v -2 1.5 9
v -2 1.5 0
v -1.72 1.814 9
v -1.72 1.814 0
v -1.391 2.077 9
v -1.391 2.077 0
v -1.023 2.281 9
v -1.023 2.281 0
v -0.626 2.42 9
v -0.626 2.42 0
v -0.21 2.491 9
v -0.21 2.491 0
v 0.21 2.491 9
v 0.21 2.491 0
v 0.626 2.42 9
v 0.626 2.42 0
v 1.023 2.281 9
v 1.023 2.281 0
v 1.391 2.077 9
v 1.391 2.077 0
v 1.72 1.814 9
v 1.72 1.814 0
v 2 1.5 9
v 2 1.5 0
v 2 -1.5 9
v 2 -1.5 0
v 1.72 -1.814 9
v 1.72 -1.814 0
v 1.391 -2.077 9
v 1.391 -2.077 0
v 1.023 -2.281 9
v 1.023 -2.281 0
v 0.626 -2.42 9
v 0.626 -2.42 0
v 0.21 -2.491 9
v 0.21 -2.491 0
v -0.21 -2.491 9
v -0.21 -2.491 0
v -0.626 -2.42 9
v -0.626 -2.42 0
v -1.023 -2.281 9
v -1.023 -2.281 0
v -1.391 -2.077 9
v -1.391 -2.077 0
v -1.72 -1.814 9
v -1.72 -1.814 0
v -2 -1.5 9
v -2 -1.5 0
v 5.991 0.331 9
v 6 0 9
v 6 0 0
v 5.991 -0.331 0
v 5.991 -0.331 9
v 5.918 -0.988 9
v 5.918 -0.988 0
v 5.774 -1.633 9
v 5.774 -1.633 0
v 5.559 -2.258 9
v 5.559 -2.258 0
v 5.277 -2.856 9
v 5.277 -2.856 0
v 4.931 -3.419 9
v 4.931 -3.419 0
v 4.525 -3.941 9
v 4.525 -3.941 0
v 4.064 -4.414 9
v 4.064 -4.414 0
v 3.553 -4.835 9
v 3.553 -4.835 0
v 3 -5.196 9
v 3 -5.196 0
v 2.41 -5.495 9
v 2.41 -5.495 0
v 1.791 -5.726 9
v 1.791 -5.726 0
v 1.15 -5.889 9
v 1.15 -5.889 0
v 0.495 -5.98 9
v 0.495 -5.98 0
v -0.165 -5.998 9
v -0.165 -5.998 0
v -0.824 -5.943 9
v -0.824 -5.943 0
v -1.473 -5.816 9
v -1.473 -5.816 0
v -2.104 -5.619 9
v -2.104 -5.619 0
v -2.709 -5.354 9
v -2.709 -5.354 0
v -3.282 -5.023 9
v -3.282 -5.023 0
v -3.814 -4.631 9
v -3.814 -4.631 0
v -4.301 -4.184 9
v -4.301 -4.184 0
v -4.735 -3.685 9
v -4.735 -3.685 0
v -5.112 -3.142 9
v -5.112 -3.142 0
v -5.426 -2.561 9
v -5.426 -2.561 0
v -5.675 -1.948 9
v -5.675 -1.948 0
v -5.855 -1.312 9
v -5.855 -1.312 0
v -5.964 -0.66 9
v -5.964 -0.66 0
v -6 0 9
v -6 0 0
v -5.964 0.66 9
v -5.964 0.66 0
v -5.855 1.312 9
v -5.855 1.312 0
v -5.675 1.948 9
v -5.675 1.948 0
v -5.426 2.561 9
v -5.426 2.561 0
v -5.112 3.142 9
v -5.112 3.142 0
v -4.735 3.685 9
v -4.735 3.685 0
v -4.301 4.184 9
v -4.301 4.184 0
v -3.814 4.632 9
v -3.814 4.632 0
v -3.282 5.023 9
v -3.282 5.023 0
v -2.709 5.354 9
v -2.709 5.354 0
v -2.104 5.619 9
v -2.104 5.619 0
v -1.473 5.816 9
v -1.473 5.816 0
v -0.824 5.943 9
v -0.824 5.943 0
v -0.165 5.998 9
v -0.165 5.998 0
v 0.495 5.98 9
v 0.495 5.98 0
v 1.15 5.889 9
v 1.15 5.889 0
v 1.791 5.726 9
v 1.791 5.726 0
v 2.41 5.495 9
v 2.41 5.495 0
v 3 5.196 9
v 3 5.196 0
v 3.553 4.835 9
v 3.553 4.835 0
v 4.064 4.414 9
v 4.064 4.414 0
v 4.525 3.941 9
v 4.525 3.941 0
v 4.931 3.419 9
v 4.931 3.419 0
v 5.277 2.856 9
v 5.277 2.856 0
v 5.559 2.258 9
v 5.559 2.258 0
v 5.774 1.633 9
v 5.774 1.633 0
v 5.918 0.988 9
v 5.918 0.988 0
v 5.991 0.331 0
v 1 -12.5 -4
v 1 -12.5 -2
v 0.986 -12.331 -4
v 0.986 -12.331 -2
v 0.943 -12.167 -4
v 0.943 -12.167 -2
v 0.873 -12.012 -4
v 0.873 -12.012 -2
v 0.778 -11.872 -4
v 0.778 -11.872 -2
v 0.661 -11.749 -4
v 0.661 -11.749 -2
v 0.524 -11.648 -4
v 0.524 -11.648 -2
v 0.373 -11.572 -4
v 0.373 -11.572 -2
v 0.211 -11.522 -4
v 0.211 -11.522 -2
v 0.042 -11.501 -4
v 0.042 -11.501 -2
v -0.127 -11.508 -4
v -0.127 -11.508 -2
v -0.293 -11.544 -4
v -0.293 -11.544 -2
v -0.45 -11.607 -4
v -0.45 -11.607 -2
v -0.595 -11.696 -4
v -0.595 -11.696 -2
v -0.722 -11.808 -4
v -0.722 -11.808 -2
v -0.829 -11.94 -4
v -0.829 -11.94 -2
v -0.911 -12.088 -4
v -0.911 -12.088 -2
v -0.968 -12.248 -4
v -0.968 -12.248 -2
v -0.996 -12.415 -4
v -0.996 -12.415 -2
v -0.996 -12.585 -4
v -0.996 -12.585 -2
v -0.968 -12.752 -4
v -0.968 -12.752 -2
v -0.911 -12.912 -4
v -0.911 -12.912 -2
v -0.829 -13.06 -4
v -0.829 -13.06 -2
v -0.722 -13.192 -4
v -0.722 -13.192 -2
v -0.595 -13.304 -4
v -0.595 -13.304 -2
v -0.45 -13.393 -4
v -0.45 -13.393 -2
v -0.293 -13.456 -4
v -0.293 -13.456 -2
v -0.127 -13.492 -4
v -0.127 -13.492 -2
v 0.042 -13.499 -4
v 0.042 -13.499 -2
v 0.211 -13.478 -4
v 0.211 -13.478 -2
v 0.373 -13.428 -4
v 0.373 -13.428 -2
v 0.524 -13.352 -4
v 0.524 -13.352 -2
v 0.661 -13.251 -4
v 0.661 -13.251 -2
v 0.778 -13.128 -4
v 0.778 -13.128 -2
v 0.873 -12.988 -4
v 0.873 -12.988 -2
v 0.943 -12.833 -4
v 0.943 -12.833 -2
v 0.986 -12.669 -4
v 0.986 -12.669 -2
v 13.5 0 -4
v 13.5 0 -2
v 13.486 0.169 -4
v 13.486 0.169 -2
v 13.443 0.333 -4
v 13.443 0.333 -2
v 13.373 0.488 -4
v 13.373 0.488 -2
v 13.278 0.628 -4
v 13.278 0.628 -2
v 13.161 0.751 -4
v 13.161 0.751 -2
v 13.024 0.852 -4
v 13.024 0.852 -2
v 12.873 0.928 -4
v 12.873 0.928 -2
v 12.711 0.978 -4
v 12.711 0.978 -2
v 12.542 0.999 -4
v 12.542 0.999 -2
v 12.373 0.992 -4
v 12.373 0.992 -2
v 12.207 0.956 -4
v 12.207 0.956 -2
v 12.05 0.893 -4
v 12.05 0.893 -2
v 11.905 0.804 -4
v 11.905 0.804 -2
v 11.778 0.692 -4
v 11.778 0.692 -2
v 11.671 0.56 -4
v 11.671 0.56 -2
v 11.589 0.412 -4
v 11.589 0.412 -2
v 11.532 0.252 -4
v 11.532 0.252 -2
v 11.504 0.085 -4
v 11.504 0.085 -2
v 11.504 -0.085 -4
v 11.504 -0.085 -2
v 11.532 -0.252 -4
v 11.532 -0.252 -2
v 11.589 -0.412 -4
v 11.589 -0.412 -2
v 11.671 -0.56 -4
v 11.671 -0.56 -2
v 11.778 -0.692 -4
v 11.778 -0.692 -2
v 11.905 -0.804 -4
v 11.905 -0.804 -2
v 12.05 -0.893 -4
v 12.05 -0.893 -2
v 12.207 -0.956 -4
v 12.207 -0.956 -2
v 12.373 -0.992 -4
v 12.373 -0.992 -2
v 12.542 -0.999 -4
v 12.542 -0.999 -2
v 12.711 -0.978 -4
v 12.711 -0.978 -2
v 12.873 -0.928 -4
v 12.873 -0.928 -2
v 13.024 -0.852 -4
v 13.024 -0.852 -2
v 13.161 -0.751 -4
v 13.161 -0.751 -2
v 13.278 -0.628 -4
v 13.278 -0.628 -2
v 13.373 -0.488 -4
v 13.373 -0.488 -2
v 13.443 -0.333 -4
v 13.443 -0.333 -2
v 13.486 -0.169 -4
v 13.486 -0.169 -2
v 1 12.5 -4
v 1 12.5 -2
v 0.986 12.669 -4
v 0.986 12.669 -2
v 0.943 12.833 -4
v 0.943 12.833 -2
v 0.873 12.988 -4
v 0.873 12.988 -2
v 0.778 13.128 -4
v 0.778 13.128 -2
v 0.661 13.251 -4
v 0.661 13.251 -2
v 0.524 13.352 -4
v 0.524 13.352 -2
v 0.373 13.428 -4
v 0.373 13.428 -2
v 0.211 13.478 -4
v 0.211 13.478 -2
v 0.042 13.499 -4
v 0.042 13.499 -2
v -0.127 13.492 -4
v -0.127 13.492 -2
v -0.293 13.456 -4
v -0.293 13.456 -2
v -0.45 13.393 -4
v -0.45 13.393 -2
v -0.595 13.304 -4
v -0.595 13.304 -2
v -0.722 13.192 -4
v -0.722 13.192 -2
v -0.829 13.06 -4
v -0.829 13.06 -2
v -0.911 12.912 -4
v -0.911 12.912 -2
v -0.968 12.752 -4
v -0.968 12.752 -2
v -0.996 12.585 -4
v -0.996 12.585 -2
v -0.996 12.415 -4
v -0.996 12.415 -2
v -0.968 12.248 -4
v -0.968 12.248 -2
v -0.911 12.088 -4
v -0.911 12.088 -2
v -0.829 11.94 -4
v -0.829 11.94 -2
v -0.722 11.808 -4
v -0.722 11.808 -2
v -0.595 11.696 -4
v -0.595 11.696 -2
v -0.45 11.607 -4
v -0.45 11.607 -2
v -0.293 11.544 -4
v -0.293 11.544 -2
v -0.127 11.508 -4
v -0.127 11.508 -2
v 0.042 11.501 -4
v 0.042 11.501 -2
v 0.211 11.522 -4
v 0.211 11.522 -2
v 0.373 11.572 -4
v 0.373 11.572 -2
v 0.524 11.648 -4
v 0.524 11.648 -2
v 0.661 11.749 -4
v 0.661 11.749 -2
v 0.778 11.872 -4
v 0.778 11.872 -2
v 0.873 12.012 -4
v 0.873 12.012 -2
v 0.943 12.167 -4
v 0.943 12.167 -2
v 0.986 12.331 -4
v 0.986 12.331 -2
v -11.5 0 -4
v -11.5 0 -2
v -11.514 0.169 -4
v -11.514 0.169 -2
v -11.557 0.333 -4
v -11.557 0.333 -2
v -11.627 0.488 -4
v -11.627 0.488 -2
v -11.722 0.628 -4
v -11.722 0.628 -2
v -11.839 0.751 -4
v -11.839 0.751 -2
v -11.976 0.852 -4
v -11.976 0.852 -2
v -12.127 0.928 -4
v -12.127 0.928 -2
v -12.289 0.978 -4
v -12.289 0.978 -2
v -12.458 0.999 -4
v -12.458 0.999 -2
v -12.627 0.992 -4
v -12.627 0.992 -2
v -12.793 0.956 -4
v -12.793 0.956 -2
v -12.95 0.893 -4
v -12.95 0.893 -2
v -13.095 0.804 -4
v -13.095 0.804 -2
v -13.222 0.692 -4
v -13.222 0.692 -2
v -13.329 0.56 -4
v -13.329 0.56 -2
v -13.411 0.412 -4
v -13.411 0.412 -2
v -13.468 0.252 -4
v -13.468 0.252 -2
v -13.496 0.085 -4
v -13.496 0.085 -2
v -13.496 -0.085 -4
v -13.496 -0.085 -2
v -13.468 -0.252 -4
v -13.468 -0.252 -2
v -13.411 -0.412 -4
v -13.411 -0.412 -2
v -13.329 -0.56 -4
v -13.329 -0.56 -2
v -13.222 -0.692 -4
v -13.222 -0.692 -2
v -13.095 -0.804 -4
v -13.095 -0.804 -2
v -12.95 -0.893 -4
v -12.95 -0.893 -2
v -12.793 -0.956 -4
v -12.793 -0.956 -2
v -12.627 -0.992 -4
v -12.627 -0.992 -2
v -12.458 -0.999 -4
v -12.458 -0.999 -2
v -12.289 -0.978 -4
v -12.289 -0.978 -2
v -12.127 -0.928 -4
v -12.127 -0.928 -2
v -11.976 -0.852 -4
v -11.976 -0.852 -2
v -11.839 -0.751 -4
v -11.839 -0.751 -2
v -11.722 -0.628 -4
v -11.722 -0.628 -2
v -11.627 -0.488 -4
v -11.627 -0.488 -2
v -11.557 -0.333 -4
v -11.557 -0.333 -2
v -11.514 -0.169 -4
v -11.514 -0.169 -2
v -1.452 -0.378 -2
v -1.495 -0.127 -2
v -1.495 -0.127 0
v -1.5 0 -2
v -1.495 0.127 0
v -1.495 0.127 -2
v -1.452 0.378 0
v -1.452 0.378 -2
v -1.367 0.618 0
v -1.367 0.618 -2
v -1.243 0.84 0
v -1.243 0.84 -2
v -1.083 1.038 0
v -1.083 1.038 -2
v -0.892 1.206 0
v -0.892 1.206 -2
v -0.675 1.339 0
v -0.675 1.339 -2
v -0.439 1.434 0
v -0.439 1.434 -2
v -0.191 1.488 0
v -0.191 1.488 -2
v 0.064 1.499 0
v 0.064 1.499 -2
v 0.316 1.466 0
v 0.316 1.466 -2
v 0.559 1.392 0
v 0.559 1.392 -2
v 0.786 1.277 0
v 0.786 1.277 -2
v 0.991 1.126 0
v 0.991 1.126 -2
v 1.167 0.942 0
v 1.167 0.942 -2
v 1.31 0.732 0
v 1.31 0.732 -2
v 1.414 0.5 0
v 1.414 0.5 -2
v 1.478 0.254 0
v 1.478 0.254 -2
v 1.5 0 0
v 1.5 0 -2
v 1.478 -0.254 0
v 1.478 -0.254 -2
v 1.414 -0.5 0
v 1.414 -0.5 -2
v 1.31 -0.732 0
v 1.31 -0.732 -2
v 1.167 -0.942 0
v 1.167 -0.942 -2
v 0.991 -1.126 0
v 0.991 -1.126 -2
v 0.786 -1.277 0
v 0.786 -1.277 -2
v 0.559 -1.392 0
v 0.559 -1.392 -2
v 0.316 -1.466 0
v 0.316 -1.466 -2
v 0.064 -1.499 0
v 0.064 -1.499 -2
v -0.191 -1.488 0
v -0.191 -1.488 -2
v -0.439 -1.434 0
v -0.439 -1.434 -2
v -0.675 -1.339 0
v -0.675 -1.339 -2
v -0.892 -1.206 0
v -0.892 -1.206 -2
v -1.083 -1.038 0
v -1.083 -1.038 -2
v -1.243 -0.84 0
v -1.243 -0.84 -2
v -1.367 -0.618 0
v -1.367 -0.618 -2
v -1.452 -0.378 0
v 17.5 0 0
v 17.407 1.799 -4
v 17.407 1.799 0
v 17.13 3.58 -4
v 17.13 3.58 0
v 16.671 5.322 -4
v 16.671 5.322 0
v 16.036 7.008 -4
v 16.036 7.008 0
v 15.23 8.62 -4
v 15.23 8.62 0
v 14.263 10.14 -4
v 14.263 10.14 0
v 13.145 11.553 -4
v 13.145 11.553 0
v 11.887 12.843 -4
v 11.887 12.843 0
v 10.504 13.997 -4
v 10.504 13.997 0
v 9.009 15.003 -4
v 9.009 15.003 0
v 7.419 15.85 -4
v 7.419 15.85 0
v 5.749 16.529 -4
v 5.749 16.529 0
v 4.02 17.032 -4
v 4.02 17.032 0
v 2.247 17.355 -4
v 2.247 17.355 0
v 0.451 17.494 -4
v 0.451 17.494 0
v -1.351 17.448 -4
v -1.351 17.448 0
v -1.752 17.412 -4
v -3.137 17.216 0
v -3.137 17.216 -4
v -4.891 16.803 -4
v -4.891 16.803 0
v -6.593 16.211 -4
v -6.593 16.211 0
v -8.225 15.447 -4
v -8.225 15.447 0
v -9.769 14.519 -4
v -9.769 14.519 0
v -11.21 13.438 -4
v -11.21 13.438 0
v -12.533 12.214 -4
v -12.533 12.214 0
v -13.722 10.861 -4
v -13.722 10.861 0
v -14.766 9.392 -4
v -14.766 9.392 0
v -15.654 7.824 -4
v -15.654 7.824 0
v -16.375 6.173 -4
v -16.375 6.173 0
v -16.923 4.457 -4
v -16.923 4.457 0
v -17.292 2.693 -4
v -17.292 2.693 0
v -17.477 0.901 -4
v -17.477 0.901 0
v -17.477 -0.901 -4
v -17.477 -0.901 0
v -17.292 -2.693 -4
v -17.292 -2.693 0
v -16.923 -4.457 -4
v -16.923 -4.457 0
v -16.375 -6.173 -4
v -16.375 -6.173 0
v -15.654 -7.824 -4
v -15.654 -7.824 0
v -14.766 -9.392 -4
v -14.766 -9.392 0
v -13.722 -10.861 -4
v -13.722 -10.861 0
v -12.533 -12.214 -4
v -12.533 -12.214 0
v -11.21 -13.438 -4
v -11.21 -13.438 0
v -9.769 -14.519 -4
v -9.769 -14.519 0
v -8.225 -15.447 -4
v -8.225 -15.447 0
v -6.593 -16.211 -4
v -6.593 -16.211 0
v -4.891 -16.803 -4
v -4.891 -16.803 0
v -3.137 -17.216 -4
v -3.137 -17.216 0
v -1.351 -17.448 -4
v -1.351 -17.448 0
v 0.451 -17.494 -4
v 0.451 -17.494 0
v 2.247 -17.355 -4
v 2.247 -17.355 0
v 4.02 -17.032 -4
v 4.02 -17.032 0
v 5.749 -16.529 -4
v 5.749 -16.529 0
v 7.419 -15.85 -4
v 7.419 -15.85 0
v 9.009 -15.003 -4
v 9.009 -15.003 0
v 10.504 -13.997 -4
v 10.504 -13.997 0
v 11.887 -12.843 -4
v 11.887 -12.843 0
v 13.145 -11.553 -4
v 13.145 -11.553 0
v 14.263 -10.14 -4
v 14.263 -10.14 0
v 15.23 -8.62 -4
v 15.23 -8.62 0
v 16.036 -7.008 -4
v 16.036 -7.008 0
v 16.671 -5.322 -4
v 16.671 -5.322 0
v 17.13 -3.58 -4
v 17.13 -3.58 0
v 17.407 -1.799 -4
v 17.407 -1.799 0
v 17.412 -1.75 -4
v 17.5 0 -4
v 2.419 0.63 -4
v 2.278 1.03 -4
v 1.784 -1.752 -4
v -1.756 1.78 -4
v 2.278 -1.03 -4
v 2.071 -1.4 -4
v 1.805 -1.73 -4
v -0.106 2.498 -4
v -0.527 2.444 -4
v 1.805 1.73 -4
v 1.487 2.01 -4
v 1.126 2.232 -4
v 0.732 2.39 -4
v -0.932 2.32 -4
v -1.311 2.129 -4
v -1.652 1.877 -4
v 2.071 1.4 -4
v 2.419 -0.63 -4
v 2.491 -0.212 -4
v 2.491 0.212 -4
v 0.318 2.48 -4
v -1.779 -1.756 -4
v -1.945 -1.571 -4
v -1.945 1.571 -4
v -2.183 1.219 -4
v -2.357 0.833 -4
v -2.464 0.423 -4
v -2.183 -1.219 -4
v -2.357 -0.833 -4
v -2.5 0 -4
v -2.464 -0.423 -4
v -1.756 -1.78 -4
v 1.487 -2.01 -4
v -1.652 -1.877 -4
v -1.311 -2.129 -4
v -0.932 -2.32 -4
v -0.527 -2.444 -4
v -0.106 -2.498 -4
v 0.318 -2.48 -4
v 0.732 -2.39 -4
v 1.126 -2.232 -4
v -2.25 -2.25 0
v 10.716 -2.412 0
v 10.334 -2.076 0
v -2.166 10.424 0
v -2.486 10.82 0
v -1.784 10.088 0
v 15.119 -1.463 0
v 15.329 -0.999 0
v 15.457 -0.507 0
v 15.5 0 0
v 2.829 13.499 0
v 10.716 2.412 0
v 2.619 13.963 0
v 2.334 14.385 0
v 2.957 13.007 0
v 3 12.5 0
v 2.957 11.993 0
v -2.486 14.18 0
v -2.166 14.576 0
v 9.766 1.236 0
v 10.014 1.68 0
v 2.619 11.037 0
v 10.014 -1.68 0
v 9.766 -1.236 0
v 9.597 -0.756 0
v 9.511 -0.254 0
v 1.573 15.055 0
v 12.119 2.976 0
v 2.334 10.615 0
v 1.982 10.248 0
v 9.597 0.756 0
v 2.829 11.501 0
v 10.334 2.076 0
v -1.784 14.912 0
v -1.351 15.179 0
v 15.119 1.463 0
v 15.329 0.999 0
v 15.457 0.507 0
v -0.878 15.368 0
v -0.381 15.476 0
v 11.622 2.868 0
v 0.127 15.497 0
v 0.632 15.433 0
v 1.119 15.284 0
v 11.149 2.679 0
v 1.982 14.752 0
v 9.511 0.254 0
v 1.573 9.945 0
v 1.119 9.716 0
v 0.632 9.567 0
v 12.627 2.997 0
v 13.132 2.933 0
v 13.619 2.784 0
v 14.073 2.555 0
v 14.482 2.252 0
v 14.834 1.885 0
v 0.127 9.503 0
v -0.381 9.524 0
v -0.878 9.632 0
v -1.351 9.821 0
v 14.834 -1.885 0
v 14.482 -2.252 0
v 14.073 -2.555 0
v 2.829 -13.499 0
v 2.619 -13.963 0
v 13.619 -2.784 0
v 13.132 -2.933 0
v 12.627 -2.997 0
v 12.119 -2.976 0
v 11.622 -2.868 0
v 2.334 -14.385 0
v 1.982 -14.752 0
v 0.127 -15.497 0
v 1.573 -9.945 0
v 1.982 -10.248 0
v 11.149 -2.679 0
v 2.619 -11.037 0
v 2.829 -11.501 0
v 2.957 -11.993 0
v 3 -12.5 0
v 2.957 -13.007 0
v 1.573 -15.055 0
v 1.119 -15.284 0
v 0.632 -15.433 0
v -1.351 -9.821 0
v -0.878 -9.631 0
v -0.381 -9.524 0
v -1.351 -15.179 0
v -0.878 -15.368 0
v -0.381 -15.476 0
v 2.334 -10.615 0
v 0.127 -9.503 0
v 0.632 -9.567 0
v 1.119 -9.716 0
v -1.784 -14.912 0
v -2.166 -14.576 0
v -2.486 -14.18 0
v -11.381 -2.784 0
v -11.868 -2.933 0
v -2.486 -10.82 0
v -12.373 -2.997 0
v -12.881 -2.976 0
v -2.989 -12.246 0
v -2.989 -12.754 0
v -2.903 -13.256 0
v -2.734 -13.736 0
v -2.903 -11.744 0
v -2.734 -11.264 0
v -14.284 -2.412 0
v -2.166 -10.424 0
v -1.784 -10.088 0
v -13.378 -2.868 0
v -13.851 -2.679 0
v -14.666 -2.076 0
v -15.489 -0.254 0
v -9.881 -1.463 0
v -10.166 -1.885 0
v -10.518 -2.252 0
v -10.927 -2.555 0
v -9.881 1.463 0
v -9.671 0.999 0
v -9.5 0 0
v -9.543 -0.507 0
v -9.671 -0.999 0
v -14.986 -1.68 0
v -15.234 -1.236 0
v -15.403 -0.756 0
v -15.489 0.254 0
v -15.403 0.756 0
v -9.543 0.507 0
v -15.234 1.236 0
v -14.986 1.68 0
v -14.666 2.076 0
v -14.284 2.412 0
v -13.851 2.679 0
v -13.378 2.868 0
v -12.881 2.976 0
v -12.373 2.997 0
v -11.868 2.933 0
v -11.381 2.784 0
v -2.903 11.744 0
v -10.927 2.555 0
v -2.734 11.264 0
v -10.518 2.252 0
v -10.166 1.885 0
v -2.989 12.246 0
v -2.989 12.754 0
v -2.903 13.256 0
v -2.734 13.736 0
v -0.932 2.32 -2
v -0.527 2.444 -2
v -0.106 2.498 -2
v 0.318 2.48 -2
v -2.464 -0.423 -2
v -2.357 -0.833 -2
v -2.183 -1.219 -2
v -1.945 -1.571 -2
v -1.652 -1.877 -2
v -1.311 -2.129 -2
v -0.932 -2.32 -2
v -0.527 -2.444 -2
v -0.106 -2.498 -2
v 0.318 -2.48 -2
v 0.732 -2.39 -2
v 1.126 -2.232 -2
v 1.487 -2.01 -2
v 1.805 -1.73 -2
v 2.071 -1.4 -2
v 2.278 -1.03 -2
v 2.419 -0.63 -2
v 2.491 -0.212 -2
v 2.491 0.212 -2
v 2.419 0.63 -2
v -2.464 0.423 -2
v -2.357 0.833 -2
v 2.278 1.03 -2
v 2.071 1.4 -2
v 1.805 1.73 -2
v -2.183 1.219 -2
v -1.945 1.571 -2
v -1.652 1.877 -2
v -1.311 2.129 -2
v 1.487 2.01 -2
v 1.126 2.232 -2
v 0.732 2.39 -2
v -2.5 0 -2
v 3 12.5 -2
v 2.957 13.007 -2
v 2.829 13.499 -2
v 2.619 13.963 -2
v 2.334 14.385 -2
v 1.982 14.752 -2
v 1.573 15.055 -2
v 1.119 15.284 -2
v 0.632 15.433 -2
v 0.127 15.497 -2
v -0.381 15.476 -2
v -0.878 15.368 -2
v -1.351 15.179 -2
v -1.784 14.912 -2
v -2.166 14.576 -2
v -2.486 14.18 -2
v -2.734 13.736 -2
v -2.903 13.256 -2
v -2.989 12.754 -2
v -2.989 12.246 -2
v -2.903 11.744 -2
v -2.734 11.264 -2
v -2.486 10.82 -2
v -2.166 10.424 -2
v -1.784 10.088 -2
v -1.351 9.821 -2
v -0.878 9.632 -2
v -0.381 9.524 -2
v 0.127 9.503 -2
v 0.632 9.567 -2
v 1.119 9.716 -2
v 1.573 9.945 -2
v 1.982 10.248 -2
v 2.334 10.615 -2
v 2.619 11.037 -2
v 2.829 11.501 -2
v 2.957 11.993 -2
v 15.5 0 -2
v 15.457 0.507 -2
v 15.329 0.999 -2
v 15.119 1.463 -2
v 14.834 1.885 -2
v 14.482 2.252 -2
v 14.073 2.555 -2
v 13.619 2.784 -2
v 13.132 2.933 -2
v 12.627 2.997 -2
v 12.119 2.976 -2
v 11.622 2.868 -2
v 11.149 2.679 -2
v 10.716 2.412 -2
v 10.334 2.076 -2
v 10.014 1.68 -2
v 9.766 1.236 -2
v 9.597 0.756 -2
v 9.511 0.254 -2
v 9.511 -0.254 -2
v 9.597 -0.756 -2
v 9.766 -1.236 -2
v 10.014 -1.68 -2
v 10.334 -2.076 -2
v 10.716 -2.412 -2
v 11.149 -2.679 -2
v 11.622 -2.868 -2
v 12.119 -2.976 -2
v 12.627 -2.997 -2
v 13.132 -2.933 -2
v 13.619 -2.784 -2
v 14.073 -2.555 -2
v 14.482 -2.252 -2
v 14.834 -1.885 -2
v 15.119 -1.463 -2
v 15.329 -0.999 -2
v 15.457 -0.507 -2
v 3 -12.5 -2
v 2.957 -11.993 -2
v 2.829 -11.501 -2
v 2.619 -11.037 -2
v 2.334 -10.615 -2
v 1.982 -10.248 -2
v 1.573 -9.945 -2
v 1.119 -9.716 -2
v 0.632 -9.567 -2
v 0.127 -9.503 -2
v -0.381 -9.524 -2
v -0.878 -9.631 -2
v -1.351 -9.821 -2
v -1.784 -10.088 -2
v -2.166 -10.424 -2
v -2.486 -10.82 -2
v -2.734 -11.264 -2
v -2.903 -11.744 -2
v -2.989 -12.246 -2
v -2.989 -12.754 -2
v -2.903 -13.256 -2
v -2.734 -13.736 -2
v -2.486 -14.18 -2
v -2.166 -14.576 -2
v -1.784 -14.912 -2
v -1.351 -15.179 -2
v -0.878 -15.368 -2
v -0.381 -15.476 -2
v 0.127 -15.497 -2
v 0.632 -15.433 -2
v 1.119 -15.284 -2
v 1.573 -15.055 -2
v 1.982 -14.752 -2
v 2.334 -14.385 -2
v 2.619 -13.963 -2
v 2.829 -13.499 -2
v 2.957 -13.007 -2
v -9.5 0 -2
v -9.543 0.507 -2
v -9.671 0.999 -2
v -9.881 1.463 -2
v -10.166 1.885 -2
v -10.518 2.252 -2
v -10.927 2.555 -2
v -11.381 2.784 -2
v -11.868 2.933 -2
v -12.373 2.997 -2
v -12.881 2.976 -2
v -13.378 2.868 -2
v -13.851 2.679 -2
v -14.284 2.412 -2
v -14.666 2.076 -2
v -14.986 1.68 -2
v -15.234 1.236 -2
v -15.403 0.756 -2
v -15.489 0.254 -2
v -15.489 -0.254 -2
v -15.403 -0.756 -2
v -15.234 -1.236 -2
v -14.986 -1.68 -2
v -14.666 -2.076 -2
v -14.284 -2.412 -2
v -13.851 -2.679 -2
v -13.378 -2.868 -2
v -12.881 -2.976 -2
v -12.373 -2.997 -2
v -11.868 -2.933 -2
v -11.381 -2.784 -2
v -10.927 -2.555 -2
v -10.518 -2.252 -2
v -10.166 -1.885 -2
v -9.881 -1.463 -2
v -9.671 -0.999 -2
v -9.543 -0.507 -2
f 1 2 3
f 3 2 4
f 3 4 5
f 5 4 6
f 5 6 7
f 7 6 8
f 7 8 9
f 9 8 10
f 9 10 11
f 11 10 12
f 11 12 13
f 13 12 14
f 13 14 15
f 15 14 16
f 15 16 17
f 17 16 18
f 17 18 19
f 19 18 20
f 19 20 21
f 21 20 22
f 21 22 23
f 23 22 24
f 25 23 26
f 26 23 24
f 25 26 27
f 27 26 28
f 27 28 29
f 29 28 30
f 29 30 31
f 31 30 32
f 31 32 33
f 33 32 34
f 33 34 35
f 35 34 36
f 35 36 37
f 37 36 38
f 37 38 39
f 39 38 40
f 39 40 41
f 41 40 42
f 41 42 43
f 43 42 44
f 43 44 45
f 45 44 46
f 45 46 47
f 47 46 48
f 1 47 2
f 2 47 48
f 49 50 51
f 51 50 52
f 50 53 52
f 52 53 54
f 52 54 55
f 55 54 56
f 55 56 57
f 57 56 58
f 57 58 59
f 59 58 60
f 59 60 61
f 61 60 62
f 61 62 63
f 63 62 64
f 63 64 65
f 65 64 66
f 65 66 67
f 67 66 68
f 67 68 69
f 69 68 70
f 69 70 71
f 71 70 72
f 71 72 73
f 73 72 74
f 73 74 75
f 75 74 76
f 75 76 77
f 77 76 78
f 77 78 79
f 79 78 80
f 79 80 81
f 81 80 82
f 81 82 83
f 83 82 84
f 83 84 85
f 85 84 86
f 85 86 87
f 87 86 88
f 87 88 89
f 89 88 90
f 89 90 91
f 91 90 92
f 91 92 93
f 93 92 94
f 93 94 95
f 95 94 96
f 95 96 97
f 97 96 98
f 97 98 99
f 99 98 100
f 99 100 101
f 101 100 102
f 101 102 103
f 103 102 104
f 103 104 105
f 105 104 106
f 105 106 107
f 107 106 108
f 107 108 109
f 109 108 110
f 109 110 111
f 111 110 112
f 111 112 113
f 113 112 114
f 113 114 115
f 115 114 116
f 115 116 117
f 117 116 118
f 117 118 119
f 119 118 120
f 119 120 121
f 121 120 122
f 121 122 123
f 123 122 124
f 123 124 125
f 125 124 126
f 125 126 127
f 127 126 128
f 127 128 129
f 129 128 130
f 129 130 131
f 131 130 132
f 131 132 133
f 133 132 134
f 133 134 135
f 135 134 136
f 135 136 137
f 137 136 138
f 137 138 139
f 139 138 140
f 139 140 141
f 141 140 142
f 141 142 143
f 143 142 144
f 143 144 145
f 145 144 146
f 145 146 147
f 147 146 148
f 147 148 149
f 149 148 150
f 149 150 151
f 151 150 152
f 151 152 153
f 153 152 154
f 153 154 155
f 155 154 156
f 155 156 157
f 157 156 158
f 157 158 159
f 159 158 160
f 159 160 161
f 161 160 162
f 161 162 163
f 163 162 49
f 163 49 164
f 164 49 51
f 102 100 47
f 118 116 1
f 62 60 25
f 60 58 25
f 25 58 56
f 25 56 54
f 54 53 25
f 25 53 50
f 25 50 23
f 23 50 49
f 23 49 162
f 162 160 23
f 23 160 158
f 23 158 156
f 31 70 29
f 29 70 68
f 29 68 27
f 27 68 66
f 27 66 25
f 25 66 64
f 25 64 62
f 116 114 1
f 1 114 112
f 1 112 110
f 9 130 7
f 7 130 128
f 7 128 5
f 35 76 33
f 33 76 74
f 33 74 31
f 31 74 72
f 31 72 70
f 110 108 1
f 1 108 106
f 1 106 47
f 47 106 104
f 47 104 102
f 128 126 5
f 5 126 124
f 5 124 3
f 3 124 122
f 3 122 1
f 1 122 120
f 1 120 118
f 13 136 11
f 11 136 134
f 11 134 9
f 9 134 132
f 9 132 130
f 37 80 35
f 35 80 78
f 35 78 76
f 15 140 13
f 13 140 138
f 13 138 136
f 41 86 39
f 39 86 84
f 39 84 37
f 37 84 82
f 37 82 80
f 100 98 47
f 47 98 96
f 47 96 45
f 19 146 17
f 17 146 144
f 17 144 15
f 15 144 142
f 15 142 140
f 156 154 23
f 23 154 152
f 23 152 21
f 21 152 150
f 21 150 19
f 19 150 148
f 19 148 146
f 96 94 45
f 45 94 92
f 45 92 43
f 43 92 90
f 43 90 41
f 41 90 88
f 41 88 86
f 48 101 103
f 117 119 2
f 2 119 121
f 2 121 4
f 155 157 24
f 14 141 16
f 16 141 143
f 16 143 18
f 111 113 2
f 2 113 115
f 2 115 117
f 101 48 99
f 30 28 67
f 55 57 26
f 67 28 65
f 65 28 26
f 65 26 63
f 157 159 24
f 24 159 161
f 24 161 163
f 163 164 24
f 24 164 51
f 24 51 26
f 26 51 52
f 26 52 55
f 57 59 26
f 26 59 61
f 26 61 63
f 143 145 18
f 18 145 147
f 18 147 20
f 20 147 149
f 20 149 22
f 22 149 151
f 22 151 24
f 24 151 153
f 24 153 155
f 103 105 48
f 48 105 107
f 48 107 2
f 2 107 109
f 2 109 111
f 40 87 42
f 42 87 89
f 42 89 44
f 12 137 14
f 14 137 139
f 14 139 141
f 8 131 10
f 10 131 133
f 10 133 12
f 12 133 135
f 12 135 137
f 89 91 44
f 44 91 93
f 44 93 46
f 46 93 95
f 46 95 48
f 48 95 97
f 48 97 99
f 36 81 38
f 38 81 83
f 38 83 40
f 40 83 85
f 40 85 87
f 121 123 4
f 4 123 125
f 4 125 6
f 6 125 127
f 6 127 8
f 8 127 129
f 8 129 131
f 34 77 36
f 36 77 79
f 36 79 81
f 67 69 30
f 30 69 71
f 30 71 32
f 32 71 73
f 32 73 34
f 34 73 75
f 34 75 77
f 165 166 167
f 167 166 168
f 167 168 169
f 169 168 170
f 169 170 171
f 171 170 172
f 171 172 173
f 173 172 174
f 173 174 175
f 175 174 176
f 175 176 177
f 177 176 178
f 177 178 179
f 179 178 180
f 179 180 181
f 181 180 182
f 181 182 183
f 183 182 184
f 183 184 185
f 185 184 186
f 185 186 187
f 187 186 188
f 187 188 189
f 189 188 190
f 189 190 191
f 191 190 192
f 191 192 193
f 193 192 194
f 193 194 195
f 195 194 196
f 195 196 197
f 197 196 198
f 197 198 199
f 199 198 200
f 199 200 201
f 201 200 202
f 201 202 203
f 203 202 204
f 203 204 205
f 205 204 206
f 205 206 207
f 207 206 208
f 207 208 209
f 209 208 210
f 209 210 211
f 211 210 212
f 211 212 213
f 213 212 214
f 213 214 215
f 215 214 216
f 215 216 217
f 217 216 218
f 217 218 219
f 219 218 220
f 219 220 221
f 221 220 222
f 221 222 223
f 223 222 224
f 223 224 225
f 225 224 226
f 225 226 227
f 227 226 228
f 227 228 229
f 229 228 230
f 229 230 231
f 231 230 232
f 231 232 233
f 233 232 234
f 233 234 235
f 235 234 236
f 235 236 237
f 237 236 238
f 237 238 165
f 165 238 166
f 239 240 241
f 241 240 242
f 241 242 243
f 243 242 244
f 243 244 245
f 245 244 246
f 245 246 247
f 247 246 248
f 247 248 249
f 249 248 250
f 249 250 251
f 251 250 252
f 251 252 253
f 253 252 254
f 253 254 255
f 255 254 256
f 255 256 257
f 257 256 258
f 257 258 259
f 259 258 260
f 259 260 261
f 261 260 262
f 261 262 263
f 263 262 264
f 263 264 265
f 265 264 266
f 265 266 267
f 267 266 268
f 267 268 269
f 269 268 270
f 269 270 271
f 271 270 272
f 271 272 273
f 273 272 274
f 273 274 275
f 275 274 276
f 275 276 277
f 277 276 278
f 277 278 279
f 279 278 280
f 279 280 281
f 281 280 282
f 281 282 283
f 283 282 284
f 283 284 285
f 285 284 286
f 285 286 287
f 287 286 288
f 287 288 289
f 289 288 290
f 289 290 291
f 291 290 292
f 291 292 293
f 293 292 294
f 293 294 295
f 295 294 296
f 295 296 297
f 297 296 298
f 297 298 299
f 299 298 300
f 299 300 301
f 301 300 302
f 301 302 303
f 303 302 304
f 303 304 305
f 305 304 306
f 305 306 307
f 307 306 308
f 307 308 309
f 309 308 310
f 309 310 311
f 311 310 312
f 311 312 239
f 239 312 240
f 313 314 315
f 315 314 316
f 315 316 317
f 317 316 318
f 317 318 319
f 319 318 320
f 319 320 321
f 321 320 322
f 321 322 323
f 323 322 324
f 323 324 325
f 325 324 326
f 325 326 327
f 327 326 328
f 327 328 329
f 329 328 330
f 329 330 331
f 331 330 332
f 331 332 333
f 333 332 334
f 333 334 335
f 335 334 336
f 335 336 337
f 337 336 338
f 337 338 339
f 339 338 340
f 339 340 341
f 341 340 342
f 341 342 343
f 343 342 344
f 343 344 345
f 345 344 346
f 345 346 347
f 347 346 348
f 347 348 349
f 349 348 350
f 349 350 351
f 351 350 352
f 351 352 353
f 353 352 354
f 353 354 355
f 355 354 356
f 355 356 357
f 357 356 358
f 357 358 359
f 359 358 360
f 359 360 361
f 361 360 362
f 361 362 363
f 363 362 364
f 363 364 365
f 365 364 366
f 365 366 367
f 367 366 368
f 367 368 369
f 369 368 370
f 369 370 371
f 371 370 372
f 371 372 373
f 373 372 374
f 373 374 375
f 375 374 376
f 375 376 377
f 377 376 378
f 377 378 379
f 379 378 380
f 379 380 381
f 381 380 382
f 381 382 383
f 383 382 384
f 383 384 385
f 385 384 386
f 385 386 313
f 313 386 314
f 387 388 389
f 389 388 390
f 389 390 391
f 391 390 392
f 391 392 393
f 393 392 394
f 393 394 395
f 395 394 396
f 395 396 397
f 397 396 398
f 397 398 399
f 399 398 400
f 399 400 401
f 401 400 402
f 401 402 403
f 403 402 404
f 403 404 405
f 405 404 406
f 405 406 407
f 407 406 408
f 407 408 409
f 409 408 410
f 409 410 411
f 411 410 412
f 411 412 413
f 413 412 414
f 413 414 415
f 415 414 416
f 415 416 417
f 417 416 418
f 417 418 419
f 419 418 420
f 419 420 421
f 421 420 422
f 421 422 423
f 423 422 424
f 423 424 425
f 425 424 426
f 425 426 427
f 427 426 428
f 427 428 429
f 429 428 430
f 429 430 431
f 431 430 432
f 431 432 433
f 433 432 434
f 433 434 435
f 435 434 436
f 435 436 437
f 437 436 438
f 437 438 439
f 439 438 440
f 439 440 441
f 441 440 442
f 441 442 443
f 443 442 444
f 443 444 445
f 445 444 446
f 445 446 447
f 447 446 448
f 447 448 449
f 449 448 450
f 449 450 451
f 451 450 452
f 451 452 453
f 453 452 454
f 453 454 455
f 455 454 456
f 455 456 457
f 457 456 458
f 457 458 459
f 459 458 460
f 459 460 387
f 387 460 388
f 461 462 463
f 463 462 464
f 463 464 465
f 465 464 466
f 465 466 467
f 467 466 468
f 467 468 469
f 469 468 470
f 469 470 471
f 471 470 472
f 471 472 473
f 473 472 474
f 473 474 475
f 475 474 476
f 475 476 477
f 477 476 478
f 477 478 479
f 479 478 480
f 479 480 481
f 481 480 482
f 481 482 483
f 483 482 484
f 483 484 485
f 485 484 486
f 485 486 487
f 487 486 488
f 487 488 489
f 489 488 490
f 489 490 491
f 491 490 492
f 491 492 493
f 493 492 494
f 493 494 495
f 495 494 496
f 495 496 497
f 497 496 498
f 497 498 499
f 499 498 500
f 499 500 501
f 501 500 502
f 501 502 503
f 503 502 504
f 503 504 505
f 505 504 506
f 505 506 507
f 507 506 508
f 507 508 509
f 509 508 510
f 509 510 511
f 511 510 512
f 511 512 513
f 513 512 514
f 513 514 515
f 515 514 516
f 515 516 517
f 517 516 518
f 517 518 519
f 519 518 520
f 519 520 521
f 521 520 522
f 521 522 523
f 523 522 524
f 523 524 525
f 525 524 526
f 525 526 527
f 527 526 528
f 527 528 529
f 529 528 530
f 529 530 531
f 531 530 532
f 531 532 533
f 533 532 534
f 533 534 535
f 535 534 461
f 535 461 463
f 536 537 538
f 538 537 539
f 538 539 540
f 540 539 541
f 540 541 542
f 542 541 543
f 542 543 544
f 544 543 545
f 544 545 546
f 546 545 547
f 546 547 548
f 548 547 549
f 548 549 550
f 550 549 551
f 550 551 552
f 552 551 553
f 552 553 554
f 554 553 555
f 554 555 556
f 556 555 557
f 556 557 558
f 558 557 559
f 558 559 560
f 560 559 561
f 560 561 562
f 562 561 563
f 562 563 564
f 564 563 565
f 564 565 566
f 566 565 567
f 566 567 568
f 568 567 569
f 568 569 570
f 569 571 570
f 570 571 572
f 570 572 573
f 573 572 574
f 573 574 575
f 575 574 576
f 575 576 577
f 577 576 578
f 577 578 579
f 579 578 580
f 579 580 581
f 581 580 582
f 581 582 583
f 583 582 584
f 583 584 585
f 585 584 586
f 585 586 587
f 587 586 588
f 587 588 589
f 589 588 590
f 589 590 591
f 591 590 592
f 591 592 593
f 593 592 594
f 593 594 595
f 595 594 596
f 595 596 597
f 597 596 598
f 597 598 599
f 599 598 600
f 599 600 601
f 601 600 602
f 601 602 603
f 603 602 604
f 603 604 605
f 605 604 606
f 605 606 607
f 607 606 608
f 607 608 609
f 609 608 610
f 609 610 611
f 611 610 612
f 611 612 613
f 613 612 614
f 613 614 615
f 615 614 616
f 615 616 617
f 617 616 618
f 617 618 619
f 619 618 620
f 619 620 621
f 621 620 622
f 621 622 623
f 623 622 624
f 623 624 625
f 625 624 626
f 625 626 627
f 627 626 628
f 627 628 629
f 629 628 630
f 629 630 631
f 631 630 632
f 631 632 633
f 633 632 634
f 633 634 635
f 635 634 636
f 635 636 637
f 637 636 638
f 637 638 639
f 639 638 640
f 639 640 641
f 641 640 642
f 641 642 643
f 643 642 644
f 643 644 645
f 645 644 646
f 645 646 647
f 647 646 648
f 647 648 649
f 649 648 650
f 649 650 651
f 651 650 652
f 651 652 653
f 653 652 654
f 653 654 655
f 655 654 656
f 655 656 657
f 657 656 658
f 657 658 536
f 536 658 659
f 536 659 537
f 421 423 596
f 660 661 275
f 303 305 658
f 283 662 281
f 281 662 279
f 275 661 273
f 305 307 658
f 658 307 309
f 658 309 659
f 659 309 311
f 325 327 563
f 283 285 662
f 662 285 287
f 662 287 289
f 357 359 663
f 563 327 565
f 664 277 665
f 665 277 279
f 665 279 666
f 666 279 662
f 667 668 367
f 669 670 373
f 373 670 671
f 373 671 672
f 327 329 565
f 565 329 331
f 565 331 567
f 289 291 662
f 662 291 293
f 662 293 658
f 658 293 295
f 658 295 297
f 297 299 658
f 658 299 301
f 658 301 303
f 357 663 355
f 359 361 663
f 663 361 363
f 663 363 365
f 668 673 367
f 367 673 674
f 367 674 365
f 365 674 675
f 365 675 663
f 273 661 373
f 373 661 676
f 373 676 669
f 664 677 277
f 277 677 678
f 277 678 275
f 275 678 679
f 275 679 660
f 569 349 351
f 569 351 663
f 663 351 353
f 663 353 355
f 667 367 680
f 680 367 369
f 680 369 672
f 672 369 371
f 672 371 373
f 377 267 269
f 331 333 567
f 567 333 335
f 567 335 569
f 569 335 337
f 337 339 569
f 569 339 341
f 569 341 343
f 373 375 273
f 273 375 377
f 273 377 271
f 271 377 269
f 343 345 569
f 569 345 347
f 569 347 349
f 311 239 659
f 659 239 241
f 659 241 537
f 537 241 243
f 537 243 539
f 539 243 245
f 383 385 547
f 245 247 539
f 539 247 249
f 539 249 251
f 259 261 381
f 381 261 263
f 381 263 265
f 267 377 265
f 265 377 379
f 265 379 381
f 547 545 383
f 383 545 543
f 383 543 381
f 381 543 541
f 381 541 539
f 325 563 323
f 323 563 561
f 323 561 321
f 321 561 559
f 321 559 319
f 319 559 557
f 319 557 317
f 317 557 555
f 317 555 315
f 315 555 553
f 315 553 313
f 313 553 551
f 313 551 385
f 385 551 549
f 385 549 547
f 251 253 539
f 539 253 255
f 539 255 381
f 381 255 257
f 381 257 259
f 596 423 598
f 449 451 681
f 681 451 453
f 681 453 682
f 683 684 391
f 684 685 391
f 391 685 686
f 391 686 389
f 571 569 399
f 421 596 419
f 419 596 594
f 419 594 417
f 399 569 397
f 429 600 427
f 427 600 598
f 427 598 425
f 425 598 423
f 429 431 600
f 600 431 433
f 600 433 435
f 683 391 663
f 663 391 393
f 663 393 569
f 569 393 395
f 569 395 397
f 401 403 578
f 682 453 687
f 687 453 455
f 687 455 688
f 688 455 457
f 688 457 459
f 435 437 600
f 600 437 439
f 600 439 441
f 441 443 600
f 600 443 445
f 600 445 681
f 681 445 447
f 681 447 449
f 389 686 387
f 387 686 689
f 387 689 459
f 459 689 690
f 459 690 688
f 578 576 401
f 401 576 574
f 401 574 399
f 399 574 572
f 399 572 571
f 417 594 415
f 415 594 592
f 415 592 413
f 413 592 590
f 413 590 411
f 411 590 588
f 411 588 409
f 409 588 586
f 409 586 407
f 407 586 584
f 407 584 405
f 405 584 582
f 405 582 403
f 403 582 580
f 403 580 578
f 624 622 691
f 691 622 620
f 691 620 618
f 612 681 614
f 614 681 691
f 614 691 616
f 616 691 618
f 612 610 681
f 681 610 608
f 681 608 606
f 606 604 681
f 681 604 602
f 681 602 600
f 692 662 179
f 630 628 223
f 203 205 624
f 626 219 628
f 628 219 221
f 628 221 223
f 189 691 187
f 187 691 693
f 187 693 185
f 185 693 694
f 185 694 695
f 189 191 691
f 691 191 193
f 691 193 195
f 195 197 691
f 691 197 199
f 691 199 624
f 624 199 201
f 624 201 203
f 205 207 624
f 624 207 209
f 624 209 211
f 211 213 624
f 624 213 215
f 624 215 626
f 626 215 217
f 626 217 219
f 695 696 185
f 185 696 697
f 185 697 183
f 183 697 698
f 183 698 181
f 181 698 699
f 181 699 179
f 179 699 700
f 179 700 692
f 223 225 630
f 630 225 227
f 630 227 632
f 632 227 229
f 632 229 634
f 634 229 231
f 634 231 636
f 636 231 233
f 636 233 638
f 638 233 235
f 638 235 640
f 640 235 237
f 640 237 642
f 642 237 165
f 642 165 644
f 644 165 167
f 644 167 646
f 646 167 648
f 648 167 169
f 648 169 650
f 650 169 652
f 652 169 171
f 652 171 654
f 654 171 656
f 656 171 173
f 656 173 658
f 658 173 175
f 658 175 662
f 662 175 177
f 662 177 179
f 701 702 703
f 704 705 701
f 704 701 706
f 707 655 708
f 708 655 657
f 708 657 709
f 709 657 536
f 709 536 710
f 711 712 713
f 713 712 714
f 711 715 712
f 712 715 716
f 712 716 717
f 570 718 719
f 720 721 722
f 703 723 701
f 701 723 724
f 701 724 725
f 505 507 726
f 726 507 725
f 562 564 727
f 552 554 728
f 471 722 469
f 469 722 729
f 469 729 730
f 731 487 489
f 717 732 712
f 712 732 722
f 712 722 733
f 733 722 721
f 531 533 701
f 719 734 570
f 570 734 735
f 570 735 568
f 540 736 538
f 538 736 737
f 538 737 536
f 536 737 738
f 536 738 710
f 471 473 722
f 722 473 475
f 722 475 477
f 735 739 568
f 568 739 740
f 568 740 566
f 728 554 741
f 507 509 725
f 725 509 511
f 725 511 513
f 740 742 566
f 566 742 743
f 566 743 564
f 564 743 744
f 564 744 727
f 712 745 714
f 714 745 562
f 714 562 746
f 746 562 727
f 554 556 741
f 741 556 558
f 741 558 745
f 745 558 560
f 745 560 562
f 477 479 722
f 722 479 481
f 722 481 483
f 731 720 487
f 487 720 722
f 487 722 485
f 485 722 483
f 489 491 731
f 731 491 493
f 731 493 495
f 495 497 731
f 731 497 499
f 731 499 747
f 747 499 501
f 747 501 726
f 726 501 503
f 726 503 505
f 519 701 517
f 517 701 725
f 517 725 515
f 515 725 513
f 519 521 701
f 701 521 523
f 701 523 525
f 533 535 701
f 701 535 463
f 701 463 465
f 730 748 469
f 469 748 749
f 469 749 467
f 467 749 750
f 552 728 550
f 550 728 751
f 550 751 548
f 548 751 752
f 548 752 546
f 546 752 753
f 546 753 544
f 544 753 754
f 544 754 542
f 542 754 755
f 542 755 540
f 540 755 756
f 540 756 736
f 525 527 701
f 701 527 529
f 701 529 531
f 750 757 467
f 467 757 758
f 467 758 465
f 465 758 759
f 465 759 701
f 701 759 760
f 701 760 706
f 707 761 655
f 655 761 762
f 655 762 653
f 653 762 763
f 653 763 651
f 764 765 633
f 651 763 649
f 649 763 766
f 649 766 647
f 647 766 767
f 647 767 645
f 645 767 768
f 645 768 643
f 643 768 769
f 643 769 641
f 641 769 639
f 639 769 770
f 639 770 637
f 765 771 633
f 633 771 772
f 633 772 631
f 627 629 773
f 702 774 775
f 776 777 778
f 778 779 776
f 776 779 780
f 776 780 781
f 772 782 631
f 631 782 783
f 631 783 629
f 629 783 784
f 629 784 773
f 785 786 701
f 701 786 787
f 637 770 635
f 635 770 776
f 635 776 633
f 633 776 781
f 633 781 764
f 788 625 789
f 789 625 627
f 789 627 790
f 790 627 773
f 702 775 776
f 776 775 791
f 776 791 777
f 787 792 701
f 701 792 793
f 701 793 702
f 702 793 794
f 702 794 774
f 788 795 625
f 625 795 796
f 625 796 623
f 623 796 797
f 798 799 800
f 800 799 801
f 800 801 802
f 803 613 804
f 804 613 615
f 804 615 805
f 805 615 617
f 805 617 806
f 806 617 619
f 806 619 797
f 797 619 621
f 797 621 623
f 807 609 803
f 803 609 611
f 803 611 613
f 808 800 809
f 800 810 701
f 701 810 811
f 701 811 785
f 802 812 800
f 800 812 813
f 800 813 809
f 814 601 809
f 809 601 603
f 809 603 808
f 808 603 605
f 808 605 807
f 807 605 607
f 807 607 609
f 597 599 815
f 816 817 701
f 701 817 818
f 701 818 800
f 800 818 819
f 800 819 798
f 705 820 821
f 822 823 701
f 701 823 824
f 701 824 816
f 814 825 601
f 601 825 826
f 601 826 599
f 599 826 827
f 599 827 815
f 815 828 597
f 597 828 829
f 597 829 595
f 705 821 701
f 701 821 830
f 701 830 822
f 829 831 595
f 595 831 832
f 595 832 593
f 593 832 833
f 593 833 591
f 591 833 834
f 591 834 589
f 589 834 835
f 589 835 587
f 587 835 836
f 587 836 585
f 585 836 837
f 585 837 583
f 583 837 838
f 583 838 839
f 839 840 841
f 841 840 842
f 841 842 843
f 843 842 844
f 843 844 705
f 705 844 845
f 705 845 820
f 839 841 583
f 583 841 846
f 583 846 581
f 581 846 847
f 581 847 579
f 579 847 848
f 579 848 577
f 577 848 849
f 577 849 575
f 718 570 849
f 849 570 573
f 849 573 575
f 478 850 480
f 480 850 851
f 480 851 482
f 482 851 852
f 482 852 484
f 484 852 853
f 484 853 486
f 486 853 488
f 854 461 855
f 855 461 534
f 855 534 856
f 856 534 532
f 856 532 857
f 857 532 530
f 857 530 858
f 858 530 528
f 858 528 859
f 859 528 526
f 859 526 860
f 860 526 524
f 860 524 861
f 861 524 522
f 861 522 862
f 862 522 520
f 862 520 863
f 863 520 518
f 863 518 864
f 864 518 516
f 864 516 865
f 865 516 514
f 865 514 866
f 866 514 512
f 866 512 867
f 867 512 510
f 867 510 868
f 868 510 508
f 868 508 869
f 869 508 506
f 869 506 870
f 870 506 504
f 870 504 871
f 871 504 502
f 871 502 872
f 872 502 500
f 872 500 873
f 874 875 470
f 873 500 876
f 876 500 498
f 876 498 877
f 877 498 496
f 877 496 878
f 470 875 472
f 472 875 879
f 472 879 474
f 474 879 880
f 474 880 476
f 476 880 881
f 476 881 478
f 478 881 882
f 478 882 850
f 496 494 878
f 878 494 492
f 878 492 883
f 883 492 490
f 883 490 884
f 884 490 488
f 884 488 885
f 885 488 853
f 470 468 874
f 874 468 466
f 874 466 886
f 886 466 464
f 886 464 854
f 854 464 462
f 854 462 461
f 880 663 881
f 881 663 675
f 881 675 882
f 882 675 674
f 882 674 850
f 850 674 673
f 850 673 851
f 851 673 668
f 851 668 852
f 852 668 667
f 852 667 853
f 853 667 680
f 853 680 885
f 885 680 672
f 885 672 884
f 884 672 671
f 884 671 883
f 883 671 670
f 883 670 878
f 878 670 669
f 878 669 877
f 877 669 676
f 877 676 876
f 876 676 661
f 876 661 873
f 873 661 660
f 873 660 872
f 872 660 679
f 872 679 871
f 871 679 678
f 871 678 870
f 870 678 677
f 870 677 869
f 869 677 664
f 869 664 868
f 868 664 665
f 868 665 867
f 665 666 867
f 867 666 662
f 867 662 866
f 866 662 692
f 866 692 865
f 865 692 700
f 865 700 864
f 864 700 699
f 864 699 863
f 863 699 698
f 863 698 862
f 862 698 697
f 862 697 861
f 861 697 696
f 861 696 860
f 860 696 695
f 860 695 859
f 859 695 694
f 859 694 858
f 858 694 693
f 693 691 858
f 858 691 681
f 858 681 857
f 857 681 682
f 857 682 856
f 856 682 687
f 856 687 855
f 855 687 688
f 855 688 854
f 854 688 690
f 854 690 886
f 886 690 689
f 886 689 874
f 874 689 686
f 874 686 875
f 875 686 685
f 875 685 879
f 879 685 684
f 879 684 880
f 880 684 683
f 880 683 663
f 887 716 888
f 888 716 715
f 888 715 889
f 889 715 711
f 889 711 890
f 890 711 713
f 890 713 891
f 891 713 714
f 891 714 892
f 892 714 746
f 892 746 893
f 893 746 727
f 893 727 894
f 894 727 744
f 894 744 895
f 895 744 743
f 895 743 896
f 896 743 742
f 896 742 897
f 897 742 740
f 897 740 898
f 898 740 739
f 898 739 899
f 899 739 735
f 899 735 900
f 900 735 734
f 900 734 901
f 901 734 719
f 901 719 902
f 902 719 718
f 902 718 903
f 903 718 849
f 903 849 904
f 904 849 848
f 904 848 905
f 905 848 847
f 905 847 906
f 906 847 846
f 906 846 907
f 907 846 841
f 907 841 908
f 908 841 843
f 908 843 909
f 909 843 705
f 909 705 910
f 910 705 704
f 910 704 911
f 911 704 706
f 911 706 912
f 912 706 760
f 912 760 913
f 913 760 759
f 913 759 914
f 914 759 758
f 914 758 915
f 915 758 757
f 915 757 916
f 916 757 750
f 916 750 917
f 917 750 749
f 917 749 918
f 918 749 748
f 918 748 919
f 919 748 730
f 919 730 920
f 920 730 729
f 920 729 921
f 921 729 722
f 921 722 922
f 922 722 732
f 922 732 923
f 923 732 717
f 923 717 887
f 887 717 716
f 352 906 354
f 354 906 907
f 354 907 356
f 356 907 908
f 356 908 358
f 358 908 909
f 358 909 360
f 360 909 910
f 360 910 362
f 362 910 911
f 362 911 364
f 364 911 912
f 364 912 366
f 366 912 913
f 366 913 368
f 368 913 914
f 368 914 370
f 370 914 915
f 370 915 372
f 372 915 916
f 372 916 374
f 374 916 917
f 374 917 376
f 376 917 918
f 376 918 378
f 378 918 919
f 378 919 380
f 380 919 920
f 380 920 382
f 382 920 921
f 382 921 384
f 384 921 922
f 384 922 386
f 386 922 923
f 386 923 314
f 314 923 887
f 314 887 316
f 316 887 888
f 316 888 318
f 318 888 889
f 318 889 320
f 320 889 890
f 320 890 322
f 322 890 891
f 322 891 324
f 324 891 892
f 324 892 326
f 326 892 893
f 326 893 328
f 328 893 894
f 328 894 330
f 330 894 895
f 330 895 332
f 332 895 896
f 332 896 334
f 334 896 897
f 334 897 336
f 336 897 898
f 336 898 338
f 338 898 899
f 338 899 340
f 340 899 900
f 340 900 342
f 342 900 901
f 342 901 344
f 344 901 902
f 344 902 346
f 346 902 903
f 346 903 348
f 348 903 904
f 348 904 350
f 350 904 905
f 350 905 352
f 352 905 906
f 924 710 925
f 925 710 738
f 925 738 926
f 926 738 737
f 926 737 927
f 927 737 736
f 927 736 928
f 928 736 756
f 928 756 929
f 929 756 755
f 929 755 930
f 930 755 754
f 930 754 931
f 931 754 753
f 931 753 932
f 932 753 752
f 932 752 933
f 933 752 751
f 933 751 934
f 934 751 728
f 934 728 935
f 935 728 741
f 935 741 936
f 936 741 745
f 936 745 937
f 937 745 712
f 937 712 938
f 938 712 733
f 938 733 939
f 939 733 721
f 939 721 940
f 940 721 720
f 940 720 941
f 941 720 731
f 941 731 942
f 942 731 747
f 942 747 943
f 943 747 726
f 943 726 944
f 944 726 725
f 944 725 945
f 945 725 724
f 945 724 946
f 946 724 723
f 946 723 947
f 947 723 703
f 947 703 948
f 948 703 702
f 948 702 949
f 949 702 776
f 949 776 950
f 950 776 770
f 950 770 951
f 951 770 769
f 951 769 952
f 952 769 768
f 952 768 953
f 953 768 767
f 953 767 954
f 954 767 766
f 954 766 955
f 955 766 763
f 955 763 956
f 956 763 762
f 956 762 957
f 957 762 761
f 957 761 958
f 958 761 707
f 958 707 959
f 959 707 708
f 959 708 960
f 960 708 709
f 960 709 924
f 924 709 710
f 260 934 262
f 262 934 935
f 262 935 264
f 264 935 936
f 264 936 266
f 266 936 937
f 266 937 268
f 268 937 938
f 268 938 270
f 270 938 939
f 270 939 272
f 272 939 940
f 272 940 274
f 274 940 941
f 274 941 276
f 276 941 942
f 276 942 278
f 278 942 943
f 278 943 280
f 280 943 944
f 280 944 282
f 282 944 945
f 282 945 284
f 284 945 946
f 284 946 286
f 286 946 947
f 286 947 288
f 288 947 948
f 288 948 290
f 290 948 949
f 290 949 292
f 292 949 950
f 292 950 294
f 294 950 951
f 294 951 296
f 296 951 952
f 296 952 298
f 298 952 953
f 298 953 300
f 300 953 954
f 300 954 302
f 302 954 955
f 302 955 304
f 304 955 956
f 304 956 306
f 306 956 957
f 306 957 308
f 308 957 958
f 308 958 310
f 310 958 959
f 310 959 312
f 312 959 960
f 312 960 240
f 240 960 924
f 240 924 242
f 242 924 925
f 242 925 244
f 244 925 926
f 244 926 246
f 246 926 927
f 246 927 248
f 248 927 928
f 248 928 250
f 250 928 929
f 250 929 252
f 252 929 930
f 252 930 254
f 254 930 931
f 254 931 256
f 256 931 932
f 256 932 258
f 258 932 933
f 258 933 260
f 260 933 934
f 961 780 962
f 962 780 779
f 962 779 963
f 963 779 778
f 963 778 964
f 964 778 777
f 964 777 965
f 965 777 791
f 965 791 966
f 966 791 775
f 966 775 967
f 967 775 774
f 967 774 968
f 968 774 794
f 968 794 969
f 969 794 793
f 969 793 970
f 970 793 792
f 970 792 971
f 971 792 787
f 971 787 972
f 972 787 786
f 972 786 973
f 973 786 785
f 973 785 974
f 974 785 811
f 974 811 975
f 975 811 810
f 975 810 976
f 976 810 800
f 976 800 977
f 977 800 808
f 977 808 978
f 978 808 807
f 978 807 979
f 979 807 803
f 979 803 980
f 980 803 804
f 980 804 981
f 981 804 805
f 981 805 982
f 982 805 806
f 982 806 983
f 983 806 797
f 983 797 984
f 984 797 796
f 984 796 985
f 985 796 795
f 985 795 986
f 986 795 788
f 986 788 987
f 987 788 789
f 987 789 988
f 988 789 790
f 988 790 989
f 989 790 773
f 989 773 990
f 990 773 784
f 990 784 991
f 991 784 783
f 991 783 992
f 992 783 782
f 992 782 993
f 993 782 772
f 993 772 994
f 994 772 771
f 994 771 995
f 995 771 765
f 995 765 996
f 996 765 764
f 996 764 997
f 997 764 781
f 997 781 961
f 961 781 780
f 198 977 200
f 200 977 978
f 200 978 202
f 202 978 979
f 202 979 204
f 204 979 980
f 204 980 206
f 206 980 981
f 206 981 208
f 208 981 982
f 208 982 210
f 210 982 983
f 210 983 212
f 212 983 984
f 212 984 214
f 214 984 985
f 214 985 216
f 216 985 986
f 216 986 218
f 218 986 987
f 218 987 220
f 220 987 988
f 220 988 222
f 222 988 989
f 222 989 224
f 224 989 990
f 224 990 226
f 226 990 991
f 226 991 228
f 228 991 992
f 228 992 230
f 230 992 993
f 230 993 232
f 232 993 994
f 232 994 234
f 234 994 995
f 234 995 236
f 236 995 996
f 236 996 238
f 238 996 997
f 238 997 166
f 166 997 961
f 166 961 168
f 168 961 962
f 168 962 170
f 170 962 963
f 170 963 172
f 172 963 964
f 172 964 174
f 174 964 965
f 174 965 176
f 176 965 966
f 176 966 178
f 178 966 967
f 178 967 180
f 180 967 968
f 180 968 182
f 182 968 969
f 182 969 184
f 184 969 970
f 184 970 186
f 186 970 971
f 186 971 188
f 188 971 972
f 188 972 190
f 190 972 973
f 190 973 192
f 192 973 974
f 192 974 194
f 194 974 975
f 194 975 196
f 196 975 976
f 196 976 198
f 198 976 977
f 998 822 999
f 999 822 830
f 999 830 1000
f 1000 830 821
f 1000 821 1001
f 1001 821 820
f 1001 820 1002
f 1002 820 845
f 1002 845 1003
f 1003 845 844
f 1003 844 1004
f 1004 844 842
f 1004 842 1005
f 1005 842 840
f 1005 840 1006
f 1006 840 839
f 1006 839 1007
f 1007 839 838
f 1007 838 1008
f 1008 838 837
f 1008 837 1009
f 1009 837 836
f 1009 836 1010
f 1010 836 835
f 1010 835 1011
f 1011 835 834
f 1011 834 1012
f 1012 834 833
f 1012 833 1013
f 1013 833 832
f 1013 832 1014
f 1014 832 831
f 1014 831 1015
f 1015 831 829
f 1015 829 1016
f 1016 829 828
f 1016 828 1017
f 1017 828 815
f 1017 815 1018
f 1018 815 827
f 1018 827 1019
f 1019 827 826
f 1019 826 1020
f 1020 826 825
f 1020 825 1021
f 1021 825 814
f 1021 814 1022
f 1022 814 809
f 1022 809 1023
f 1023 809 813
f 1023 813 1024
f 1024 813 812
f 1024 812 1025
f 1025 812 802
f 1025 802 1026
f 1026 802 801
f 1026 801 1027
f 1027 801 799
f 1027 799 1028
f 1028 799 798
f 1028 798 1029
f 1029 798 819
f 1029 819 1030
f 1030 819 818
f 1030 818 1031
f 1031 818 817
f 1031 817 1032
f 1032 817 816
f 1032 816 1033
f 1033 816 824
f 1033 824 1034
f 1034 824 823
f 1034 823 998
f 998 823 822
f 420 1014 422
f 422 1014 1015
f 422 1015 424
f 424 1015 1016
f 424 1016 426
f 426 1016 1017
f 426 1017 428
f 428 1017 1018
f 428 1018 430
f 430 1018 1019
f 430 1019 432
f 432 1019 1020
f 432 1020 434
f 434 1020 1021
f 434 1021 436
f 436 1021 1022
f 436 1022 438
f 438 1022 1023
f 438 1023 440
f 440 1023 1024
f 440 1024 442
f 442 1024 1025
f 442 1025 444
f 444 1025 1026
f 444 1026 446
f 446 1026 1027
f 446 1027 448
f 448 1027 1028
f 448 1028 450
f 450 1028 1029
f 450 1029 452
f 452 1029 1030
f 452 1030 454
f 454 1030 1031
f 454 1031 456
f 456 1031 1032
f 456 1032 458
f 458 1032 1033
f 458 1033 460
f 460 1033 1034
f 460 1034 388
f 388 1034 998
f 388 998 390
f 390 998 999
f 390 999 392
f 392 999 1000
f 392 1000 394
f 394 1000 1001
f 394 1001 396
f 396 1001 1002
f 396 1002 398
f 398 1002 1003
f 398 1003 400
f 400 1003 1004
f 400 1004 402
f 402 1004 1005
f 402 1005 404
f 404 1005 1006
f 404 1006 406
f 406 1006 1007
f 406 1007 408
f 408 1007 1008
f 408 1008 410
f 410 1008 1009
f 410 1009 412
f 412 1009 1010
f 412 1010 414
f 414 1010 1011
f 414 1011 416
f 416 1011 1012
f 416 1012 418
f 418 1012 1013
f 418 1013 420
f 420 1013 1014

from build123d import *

# Parameters (mm, degrees)
SKETCH1_R           = 17.5
SKETCH1_R_2         = 1.5
SKETCH1_R_3         = 1
BOSS_EXTRUDE1_DEPTH = 4
SKETCH1_3_R         = 6
BOSS_EXTRUDE2_DEPTH = 9
SKETCH2_R           = 2.5
CUT_EXTRUDE1_DEPTH  = 2
SKETCH1_6_R         = 3
SKETCH1_6_R_2       = 1
CUT_EXTRUDE2_DEPTH  = 2


with BuildPart() as part:
    # Sketch1 → Boss-Extrude1 (new body)
    with BuildSketch(Plane.XY):
        Circle(SKETCH1_R)
        Circle(SKETCH1_R_2, mode=Mode.SUBTRACT)
        with Locations((0, -12.5)):
            Circle(SKETCH1_R_3, mode=Mode.SUBTRACT)
        with Locations((12.5, 0)):
            Circle(SKETCH1_R_3, mode=Mode.SUBTRACT)
        with Locations((-12.5, 0)):
            Circle(SKETCH1_R_3, mode=Mode.SUBTRACT)
        with Locations((0, 12.5)):
            Circle(SKETCH1_R_3, mode=Mode.SUBTRACT)
    extrude(amount=-BOSS_EXTRUDE1_DEPTH)

    # Sketch2 → Cut-Extrude1 (cut)
    with BuildSketch(Plane(origin=(0, 0, -4), x_dir=(-1, 0, 0), z_dir=(0, 0, -1))):
        Circle(SKETCH2_R)
    extrude(amount=-CUT_EXTRUDE1_DEPTH, mode=Mode.SUBTRACT)

    # Sketch1<6> → Cut-Extrude2 (cut)
    # profile 1 of 4: a face of its own
    with BuildSketch(Plane.XY):
        with Locations((0, 12.5)):
            Circle(SKETCH1_6_R)
        with Locations((0, 12.5)):
            Circle(SKETCH1_6_R_2, mode=Mode.SUBTRACT)
    # profile 2 of 4: a face of its own
    with BuildSketch(Plane.XY):
        with Locations((12.5, 0)):
            Circle(SKETCH1_6_R)
        with Locations((12.5, 0)):
            Circle(SKETCH1_6_R_2, mode=Mode.SUBTRACT)
    # profile 3 of 4: a face of its own
    with BuildSketch(Plane.XY):
        with Locations((0, -12.5)):
            Circle(SKETCH1_6_R)
        with Locations((0, -12.5)):
            Circle(SKETCH1_6_R_2, mode=Mode.SUBTRACT)
    # profile 4 of 4: a face of its own
    with BuildSketch(Plane.XY):
        with Locations((-12.5, 0)):
            Circle(SKETCH1_6_R)
        with Locations((-12.5, 0)):
            Circle(SKETCH1_6_R_2, mode=Mode.SUBTRACT)
    extrude(amount=-CUT_EXTRUDE2_DEPTH, mode=Mode.SUBTRACT)


with BuildPart() as body_2:
    # Sketch1<3> → Boss-Extrude2 (new body)
    with BuildSketch(Plane.XY):
        Circle(SKETCH1_3_R)
        with BuildLine():
            Line((-2, -1.5), (-2, 1.5))
            ThreePointArc((-2, 1.5), (0, 2.5), (2, 1.5))
            Line((2, 1.5), (2, -1.5))
            ThreePointArc((2, -1.5), (0, -2.5), (-2, -1.5))
        make_face(mode=Mode.SUBTRACT)
    extrude(amount=BOSS_EXTRUDE2_DEPTH)


solid = Compound([part.part, body_2.part])
